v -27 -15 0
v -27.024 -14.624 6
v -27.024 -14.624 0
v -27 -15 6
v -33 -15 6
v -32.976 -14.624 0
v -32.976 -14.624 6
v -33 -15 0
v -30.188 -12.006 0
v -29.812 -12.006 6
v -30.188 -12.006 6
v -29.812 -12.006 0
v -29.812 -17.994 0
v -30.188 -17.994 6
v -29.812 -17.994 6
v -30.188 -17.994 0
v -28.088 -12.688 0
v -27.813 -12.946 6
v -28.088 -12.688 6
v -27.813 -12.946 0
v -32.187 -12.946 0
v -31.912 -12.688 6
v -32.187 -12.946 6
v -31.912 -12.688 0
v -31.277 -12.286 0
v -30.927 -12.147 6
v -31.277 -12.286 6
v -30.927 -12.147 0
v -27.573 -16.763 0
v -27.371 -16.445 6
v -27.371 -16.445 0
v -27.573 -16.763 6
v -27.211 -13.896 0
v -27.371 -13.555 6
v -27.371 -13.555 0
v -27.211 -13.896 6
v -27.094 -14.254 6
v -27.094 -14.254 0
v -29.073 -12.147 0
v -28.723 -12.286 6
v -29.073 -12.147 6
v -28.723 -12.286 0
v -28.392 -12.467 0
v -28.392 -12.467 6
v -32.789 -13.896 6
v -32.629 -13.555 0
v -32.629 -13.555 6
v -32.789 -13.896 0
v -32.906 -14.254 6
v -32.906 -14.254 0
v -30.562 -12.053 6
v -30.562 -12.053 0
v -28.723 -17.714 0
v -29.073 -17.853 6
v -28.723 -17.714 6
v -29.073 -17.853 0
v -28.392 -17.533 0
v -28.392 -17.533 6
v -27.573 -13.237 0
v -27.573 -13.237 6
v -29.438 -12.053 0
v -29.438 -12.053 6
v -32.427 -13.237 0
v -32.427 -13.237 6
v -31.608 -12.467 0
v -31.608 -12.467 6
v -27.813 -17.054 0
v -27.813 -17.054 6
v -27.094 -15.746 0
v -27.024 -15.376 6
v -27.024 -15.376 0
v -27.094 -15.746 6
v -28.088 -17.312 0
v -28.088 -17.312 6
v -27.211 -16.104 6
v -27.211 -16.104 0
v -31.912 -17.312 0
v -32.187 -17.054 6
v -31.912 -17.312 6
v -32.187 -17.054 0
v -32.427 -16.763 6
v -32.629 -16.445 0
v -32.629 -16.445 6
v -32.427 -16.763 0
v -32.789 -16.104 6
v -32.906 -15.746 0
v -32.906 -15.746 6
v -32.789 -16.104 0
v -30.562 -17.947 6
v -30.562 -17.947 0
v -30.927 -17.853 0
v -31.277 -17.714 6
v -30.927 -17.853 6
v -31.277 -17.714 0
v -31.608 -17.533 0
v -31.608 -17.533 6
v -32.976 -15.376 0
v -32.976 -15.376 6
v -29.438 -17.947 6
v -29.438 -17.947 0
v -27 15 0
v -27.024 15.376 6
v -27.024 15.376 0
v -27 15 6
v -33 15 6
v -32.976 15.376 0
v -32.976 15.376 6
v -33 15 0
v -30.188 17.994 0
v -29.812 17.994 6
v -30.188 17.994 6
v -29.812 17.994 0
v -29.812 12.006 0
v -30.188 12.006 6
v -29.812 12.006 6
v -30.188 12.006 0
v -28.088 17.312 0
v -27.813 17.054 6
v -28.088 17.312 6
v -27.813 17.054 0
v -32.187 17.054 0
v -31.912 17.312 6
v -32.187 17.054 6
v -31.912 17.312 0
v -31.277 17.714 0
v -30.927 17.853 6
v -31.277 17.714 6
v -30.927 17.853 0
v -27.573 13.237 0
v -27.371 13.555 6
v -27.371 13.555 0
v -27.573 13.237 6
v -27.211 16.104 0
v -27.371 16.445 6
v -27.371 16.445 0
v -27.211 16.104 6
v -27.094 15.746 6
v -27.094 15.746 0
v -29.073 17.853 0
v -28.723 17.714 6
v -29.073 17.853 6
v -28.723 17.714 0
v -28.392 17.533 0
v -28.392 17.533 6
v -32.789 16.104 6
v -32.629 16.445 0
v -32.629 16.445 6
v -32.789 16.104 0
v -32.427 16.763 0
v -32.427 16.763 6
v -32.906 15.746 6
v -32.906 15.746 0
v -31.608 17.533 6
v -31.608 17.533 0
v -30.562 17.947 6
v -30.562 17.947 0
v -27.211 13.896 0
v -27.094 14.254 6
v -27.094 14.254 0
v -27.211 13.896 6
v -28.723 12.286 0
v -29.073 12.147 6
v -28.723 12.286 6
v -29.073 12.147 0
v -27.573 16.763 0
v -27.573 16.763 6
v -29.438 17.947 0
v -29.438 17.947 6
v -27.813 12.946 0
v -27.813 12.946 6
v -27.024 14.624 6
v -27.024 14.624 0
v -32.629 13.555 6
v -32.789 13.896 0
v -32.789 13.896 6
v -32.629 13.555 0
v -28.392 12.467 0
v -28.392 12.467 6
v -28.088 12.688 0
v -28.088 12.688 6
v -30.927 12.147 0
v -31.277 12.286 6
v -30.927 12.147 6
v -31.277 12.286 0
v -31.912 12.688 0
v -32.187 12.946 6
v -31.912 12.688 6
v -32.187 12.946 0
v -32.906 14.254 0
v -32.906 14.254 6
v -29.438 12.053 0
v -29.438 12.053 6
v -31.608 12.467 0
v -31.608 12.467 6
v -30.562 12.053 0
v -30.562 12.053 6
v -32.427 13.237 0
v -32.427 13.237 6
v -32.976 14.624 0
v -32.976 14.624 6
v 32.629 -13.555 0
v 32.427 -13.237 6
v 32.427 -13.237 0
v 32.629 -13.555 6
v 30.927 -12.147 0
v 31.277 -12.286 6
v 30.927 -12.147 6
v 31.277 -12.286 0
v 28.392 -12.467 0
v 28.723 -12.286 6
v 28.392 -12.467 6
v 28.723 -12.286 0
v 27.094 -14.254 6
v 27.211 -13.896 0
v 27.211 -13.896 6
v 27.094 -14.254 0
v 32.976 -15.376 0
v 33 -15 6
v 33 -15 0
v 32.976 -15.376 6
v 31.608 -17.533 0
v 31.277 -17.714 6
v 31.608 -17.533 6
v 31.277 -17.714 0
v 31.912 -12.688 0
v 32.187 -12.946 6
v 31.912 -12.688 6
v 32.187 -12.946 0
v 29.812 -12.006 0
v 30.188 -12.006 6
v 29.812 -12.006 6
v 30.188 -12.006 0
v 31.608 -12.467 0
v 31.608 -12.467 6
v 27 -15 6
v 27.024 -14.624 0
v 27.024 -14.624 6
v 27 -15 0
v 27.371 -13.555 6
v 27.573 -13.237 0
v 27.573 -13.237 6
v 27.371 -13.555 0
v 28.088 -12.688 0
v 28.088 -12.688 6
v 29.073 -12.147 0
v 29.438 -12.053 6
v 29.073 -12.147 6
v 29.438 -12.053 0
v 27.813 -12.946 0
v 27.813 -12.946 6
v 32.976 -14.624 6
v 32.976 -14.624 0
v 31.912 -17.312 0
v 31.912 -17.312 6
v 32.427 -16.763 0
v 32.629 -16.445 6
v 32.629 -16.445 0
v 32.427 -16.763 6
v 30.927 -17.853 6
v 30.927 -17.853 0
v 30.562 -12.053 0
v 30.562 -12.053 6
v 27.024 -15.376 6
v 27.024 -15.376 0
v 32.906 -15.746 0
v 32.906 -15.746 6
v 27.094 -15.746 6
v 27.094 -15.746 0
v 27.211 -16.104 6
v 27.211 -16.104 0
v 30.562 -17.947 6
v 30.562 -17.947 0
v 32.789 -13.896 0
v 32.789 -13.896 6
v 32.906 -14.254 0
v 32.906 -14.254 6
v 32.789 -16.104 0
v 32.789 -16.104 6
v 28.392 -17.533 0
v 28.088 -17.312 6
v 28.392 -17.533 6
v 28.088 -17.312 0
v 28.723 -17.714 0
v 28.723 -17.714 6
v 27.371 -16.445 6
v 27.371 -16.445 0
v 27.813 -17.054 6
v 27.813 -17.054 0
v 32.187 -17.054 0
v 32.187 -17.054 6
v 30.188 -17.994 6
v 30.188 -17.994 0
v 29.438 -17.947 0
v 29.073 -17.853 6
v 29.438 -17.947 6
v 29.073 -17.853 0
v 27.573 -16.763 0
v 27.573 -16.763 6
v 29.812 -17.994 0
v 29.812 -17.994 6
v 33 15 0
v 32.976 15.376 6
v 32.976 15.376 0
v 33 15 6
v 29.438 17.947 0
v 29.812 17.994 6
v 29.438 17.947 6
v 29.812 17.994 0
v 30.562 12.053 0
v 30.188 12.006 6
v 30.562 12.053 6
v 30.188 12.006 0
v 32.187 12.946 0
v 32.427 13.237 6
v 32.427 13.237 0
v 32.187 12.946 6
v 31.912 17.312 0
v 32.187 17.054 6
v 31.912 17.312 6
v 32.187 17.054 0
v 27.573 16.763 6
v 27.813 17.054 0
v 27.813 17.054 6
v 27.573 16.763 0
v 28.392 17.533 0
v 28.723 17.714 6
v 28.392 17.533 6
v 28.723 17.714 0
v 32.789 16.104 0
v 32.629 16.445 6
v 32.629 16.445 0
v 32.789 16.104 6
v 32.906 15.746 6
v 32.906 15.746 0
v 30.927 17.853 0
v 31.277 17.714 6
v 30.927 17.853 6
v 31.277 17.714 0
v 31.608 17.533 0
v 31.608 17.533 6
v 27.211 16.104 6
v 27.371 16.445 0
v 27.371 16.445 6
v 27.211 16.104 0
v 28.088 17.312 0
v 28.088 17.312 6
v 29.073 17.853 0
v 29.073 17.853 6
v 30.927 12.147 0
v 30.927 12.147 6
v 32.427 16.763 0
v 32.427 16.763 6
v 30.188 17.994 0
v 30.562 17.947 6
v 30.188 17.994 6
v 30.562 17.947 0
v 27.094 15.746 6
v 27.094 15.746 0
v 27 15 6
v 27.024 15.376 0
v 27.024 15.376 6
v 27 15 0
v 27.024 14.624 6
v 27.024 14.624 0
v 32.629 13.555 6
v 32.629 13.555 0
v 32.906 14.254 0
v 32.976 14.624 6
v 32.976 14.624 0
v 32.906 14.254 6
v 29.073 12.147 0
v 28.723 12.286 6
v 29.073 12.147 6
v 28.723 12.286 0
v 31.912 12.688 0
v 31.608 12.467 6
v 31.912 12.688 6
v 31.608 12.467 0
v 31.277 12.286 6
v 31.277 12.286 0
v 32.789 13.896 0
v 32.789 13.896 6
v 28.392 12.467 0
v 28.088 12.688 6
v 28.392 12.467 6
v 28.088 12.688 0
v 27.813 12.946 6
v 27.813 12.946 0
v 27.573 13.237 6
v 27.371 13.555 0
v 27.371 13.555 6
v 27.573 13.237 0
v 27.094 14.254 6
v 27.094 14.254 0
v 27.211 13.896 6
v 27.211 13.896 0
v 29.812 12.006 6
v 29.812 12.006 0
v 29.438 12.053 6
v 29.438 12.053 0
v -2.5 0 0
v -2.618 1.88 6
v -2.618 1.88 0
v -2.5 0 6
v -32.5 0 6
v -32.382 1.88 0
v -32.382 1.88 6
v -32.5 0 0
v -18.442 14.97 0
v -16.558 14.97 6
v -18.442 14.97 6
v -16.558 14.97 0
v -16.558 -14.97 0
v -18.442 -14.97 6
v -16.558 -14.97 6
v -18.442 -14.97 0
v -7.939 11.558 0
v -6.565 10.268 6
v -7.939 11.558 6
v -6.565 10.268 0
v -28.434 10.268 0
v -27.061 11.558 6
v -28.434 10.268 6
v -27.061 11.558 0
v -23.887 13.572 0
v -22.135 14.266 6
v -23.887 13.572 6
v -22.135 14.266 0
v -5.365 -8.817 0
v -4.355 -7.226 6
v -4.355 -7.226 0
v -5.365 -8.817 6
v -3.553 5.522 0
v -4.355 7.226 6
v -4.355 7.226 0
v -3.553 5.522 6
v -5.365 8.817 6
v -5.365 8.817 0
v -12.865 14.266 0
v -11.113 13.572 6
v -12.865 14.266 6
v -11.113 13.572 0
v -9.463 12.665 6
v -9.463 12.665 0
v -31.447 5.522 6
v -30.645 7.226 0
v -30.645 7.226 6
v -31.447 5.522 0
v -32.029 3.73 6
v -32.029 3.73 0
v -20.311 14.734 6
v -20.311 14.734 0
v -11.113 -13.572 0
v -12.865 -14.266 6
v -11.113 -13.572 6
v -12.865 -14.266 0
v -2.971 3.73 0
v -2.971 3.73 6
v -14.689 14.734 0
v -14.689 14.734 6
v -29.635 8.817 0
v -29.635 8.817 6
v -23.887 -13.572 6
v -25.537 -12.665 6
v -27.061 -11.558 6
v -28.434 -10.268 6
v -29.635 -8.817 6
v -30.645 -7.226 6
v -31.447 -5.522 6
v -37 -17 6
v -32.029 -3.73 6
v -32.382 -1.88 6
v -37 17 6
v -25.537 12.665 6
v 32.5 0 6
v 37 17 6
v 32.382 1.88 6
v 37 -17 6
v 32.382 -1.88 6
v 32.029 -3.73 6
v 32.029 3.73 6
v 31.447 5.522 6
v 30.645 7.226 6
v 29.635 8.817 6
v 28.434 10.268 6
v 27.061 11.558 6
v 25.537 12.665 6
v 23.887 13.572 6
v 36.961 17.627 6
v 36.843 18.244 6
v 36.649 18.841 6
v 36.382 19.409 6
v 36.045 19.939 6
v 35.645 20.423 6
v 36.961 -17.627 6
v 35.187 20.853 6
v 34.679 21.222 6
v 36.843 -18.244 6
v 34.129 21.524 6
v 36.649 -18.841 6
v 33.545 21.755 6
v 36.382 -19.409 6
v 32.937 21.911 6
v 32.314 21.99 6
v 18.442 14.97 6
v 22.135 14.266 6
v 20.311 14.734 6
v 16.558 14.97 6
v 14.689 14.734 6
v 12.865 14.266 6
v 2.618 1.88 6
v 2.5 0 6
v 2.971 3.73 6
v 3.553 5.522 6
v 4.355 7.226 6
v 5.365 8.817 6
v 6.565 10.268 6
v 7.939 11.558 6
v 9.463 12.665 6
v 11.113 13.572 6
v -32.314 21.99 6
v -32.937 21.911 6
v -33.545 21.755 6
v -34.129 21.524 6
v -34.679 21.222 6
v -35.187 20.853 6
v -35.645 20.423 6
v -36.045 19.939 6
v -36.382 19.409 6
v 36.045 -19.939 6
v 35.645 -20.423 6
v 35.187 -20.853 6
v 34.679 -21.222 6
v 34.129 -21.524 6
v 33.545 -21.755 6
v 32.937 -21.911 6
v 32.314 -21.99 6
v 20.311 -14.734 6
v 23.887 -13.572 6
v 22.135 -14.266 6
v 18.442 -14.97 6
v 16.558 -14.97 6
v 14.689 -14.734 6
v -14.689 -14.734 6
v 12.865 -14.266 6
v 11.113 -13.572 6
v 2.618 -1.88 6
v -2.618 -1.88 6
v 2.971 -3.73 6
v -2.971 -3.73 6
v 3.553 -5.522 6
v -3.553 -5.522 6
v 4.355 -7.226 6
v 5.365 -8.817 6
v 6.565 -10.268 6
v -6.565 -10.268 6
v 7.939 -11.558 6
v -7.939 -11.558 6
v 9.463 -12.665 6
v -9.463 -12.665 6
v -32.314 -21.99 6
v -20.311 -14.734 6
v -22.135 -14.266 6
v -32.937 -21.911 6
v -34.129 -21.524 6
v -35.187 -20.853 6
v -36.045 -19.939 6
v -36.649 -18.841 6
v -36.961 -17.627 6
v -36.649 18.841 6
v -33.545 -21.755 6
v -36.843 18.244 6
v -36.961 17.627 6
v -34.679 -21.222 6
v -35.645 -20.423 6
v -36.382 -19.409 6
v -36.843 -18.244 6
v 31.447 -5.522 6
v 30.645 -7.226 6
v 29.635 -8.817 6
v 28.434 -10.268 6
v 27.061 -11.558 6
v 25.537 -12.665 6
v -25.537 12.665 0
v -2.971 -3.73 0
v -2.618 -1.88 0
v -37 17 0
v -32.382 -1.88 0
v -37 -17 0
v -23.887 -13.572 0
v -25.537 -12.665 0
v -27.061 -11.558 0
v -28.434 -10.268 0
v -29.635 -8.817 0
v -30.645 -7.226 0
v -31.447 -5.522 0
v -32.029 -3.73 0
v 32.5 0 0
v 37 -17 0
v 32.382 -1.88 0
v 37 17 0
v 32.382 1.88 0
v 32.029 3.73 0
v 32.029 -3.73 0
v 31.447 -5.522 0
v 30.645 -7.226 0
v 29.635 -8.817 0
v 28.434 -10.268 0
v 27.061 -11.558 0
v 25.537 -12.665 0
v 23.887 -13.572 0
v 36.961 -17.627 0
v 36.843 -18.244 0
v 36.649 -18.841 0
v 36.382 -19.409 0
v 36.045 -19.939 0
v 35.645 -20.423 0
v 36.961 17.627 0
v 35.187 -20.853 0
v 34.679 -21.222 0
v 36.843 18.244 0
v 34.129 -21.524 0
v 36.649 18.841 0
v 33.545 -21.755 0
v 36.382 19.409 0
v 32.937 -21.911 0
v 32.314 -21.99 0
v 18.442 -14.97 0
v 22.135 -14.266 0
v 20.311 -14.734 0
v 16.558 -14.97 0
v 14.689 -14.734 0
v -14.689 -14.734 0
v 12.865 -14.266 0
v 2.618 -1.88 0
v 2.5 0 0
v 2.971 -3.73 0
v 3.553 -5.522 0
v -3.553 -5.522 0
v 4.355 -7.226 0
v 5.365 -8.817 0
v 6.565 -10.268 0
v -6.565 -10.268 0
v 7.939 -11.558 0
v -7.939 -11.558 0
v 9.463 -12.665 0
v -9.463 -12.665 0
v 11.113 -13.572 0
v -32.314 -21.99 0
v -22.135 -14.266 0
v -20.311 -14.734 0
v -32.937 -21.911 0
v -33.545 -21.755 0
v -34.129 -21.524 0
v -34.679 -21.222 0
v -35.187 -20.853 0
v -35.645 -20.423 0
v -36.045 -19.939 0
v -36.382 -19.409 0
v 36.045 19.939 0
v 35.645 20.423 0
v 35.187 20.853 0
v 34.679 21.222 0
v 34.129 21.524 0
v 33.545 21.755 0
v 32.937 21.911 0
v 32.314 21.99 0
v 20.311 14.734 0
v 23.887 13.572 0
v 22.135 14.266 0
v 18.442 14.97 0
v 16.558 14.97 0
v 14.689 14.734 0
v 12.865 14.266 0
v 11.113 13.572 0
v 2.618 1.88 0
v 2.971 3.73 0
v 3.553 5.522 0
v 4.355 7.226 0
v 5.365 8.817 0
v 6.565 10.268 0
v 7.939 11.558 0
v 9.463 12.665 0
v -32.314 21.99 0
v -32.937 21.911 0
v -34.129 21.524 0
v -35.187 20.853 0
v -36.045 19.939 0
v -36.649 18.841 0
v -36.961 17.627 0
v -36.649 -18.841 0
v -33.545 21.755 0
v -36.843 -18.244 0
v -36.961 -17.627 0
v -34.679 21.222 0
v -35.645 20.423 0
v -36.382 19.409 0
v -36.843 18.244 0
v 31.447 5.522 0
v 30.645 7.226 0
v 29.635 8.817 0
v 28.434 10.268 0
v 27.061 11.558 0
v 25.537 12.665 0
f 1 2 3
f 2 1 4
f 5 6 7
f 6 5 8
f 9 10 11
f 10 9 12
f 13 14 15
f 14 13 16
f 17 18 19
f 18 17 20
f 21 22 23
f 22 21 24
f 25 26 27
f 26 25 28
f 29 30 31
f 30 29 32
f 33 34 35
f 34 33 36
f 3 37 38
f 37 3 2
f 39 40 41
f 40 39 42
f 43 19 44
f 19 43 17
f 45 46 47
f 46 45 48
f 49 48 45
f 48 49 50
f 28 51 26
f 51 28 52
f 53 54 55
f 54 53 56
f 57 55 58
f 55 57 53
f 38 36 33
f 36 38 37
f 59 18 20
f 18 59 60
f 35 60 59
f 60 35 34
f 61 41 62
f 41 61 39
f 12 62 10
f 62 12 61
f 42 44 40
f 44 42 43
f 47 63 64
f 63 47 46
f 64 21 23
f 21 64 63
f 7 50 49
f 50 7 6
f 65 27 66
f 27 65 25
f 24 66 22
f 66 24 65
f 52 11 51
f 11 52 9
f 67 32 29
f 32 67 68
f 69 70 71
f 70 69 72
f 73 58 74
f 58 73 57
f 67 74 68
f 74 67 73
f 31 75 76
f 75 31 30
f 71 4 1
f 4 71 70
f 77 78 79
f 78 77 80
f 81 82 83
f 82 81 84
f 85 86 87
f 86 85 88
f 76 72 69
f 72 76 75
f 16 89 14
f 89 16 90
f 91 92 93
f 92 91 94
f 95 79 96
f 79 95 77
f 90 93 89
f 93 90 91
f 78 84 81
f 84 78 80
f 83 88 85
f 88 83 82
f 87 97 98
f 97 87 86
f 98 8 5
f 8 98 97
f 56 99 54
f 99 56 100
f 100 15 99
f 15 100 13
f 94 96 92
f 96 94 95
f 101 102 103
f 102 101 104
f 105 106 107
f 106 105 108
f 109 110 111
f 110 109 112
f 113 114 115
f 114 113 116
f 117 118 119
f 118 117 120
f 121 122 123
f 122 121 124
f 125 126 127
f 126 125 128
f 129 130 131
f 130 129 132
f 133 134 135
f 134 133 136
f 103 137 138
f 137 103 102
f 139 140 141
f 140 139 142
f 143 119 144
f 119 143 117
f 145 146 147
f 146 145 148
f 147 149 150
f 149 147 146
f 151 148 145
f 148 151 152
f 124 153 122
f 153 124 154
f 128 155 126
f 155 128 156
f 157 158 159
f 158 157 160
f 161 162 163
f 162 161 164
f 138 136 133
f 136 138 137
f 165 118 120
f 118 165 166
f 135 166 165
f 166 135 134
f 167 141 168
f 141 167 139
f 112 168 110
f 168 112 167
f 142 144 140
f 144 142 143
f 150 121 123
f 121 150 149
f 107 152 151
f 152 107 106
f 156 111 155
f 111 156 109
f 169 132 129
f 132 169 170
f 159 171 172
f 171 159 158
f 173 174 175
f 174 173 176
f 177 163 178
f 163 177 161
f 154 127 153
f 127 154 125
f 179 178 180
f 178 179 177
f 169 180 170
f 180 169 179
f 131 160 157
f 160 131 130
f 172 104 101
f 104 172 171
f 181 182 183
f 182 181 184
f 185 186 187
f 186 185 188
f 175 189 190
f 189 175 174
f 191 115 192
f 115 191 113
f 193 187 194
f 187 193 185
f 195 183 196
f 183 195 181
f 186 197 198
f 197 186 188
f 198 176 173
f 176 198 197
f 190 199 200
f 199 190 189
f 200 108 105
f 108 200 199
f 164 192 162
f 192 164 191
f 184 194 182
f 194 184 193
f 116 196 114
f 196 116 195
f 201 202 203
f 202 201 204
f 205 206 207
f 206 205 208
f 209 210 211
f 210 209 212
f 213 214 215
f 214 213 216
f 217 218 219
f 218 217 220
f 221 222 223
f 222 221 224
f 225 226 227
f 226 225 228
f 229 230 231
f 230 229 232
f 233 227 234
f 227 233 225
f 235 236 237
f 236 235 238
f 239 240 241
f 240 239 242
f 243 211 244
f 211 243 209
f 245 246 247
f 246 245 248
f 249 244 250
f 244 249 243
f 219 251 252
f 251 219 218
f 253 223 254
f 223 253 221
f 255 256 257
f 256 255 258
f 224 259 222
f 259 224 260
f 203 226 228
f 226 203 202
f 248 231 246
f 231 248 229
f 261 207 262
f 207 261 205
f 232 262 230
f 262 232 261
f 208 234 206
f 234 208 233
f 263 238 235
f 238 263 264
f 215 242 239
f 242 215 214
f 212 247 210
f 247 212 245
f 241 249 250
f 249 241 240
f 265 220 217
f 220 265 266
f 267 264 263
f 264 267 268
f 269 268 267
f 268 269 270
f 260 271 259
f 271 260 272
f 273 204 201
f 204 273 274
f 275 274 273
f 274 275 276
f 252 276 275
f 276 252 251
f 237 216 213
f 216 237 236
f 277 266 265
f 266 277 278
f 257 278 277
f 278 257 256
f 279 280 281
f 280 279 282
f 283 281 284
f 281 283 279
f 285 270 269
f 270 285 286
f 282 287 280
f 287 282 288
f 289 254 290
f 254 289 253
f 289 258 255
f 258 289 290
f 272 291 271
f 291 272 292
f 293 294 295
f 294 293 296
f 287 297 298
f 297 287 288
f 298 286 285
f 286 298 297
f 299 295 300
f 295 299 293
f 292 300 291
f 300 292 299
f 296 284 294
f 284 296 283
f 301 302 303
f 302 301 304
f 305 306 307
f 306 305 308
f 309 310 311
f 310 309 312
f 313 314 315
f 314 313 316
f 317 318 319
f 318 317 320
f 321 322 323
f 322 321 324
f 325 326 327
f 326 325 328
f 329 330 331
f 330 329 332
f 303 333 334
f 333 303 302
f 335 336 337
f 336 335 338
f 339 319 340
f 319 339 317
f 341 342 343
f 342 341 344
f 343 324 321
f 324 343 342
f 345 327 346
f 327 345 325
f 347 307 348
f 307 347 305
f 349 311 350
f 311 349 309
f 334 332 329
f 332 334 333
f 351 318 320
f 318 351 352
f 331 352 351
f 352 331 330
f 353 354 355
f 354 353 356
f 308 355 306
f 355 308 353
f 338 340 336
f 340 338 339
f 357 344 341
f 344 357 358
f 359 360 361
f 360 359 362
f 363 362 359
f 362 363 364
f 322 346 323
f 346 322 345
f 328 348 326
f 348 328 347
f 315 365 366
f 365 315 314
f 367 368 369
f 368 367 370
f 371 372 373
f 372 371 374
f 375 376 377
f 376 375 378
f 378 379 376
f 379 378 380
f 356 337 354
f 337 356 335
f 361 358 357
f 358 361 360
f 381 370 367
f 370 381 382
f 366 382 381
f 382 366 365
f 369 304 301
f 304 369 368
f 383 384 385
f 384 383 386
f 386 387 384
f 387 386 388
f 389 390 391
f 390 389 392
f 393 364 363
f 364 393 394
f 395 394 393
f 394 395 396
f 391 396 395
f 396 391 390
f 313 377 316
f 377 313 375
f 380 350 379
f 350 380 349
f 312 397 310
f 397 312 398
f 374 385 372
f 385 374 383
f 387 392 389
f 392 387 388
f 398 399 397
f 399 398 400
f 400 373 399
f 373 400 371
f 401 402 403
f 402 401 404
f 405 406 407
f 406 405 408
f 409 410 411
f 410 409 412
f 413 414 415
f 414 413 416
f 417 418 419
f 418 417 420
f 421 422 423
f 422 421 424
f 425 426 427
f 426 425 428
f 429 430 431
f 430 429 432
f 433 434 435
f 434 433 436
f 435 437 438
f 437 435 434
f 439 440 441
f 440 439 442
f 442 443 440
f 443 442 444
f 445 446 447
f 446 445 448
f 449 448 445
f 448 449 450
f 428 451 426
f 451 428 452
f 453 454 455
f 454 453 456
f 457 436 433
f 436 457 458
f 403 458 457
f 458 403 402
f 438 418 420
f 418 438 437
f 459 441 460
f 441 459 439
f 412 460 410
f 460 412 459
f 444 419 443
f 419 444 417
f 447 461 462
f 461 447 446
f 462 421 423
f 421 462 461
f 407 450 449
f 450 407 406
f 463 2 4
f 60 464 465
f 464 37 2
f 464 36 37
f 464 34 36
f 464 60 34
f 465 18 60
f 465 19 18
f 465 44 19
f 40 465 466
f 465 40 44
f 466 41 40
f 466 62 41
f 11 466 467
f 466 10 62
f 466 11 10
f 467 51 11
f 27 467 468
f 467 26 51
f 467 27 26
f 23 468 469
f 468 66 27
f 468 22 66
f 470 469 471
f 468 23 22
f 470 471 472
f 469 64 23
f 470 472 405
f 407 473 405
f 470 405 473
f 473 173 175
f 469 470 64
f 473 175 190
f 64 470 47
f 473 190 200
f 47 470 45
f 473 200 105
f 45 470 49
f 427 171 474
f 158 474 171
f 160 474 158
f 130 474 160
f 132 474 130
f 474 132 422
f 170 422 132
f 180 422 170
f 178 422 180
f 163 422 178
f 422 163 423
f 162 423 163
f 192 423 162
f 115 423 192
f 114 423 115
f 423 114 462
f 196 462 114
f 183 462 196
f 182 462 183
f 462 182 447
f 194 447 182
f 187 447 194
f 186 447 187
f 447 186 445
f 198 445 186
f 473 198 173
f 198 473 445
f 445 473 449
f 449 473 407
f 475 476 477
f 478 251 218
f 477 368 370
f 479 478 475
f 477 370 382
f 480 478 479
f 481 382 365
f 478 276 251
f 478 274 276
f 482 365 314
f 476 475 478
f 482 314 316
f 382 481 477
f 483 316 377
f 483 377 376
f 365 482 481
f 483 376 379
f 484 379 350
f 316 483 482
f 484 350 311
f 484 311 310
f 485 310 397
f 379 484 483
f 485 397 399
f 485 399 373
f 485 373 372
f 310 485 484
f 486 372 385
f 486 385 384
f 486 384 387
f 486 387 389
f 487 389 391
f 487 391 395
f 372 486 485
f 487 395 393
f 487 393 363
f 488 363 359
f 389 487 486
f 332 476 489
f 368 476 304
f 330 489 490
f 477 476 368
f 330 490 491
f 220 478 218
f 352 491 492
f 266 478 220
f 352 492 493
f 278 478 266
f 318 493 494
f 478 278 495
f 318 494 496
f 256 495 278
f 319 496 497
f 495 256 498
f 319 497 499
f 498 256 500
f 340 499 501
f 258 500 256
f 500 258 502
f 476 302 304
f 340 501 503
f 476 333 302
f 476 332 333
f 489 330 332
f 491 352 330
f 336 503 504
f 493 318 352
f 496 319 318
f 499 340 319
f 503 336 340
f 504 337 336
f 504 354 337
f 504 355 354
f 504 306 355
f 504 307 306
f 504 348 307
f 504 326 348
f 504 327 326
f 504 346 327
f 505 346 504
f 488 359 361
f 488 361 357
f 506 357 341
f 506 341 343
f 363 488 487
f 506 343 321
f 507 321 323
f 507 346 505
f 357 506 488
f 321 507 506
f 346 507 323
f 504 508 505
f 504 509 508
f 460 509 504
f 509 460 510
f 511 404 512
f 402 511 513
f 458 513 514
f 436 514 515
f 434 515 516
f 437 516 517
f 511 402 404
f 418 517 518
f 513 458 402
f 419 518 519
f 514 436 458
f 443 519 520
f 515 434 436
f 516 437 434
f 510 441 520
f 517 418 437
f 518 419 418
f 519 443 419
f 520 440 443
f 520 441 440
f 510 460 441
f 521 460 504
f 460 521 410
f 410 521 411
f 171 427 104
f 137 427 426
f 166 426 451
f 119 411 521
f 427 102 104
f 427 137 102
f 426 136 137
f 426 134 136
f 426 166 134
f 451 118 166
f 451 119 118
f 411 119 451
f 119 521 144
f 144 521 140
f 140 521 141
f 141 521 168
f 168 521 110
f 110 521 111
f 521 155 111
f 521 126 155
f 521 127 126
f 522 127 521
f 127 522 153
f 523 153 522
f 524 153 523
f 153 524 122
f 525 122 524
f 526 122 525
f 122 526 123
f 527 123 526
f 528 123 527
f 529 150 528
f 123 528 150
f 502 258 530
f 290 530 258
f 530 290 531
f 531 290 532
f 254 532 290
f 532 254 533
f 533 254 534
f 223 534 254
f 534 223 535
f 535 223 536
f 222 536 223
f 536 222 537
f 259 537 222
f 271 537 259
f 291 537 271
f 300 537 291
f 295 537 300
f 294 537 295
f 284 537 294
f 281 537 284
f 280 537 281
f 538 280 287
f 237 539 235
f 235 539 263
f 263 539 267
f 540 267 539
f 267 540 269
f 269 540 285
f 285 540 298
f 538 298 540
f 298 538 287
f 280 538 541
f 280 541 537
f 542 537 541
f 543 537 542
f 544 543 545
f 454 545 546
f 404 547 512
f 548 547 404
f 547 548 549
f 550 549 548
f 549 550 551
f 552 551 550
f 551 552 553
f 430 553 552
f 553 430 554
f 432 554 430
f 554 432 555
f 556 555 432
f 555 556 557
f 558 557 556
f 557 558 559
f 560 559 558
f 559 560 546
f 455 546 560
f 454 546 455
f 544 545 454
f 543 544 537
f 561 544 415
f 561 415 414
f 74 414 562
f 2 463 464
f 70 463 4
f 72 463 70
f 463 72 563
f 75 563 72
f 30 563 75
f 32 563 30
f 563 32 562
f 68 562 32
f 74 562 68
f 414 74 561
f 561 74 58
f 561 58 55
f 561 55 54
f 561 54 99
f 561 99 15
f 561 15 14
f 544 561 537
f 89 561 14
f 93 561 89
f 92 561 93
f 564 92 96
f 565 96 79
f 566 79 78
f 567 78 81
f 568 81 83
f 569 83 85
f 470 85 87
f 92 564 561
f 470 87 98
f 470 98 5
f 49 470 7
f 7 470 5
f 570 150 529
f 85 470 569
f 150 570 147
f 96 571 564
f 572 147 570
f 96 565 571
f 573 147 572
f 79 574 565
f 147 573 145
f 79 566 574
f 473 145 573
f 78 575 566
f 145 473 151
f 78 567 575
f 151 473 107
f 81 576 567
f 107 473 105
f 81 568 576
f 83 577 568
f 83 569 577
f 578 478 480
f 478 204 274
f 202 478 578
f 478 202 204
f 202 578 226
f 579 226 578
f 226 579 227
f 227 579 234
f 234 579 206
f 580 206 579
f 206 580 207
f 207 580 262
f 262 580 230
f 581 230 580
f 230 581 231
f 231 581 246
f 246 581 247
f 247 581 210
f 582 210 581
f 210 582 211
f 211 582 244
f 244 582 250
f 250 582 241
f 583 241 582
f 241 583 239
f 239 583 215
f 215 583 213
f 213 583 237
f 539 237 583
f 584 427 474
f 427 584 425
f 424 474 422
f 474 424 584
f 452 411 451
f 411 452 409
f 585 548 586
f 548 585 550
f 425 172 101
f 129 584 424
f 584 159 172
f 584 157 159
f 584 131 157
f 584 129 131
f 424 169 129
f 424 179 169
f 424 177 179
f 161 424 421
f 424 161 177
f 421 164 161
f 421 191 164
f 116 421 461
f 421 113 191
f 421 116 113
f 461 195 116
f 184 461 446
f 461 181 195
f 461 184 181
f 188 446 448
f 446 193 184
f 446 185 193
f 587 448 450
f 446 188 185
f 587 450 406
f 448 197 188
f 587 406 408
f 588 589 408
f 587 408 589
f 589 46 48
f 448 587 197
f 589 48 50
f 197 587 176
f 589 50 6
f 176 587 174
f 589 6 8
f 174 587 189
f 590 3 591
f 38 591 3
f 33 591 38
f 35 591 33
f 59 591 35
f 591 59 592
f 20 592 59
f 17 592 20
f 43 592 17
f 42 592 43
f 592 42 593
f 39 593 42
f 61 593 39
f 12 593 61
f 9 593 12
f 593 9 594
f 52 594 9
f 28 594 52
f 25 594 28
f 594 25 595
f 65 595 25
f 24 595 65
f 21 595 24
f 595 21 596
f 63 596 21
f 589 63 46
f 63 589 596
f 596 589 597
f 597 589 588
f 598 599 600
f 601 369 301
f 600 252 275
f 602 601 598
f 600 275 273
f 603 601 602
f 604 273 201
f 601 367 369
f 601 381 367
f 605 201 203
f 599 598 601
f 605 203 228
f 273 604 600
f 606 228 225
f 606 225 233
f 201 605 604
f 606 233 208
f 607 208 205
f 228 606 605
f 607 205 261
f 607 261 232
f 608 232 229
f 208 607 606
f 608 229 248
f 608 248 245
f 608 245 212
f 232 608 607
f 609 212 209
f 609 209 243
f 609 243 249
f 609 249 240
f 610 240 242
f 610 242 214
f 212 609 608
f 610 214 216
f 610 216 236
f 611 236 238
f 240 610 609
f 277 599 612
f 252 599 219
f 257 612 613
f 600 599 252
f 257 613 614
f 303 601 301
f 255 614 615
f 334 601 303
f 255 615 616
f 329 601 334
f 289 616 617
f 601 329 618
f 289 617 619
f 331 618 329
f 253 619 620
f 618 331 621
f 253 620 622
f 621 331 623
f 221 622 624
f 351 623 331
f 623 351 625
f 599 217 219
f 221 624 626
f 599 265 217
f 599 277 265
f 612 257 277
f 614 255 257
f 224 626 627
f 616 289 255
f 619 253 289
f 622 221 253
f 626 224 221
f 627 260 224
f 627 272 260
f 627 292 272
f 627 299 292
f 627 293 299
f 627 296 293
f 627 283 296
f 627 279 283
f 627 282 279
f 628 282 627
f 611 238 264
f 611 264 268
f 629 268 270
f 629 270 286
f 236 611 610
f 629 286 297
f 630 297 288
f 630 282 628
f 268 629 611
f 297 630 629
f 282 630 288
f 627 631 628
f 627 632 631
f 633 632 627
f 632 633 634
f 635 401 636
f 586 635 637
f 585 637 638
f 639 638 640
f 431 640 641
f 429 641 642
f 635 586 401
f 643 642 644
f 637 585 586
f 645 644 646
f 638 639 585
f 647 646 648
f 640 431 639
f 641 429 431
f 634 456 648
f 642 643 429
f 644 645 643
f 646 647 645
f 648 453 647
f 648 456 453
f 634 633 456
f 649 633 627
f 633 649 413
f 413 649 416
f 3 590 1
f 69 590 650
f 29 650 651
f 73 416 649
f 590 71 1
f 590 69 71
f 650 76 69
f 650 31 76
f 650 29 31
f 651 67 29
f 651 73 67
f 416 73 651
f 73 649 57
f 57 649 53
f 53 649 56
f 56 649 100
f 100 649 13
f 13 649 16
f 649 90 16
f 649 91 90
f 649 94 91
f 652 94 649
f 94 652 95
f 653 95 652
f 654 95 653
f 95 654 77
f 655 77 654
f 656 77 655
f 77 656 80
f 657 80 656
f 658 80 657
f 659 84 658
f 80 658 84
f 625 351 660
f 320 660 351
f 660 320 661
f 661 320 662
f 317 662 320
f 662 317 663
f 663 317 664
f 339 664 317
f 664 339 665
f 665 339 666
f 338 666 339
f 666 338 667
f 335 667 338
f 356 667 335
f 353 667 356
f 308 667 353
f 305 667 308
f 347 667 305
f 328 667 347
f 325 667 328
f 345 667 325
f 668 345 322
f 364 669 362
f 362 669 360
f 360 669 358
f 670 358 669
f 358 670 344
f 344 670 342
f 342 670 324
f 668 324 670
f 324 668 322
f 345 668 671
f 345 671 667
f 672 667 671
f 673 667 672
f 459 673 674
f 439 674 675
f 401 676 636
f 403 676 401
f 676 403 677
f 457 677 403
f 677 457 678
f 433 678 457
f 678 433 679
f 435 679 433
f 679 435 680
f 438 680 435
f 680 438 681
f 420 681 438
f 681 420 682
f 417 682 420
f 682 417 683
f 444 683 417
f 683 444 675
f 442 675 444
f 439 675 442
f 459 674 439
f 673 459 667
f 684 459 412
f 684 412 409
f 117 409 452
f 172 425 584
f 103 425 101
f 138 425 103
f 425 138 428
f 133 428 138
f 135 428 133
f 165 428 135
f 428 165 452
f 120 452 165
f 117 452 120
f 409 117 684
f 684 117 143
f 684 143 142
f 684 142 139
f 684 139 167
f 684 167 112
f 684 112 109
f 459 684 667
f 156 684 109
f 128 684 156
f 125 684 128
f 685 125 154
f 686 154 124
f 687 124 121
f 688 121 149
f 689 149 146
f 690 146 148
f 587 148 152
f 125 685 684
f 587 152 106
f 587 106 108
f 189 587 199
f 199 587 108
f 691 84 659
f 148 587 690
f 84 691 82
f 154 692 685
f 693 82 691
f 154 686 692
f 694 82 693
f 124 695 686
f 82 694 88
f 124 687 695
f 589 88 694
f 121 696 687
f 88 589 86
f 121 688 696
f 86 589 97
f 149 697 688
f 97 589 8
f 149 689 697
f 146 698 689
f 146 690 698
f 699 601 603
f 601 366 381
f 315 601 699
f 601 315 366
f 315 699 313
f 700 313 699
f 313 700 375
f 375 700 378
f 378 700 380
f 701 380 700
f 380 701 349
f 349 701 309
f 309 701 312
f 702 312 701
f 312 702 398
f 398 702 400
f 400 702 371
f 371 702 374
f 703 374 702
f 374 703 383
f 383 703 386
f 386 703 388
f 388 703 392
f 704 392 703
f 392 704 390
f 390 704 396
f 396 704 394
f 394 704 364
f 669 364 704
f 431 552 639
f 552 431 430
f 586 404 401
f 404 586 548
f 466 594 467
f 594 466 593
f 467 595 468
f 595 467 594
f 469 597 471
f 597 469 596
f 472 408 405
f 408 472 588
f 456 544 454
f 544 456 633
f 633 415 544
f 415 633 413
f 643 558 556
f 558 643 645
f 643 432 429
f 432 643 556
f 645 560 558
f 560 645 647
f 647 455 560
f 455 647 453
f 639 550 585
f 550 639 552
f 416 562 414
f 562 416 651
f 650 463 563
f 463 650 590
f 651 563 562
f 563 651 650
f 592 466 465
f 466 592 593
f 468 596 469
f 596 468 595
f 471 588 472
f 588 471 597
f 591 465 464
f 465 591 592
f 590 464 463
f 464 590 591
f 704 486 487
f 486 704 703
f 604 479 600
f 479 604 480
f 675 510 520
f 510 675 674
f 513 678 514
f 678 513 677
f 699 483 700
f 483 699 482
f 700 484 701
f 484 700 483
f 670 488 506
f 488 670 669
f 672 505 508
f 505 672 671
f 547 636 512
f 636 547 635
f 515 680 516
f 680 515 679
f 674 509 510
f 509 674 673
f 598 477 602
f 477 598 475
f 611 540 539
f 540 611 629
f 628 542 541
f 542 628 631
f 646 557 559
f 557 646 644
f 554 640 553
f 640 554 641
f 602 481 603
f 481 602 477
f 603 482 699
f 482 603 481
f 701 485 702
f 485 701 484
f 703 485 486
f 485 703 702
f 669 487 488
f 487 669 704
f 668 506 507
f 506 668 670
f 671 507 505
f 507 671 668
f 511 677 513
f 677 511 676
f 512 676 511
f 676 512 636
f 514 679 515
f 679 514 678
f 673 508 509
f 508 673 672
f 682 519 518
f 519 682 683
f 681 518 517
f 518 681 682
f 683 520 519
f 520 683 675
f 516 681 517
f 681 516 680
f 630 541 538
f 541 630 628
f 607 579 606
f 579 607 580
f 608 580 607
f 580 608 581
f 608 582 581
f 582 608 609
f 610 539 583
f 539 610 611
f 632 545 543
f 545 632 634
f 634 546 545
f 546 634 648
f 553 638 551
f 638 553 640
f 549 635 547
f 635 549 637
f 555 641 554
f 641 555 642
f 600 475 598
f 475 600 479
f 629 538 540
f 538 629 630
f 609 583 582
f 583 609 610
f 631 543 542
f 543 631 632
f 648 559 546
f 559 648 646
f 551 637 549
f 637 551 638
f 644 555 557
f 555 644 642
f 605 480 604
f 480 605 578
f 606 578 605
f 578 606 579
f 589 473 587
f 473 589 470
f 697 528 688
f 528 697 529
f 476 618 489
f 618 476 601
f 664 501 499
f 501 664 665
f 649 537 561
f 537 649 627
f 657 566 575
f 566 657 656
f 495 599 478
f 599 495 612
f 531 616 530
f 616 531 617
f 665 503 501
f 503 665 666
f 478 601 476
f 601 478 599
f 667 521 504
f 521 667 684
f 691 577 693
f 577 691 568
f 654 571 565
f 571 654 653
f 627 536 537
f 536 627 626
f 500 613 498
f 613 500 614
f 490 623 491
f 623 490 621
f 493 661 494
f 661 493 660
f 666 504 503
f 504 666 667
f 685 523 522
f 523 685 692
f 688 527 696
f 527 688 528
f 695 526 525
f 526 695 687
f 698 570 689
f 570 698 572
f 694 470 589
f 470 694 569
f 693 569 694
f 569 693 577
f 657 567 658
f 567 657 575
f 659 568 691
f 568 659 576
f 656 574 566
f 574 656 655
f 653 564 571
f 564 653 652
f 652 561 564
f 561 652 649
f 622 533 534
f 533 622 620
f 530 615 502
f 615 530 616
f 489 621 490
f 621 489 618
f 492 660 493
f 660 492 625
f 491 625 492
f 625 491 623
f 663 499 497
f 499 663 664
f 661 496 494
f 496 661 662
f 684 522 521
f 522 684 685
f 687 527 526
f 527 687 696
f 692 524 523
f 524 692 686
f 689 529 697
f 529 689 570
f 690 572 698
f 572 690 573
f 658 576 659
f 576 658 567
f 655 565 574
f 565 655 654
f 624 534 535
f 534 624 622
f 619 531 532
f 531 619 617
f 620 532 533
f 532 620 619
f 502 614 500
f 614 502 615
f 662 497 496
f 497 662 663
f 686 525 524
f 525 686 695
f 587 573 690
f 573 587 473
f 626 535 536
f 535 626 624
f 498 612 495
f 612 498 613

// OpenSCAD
$fn = 50;


difference() {
	union() {
		hull() {
			translate(v = [-32.0000000000, 17.0000000000, 0]) {
				cylinder(h = 6, r = 5);
			}
			translate(v = [32.0000000000, 17.0000000000, 0]) {
				cylinder(h = 6, r = 5);
			}
			translate(v = [-32.0000000000, -17.0000000000, 0]) {
				cylinder(h = 6, r = 5);
			}
			translate(v = [32.0000000000, -17.0000000000, 0]) {
				cylinder(h = 6, r = 5);
			}
		}
	}
	union() {
		#translate(v = [-30.0000000000, -15.0000000000, -100.0000000000]) {
			cylinder(h = 200, r = 3.0000000000);
		}
		#translate(v = [-30.0000000000, 15.0000000000, -100.0000000000]) {
			cylinder(h = 200, r = 3.0000000000);
		}
		#translate(v = [30.0000000000, -15.0000000000, -100.0000000000]) {
			cylinder(h = 200, r = 3.0000000000);
		}
		#translate(v = [30.0000000000, 15.0000000000, -100.0000000000]) {
			cylinder(h = 200, r = 3.0000000000);
		}
		#translate(v = [-17.5000000000, 0, 0]) {
			cylinder(h = 6, r = 15.0000000000);
		}
		#translate(v = [17.5000000000, 0, 0]) {
			cylinder(h = 6, r = 15.0000000000);
		}
	}
}
